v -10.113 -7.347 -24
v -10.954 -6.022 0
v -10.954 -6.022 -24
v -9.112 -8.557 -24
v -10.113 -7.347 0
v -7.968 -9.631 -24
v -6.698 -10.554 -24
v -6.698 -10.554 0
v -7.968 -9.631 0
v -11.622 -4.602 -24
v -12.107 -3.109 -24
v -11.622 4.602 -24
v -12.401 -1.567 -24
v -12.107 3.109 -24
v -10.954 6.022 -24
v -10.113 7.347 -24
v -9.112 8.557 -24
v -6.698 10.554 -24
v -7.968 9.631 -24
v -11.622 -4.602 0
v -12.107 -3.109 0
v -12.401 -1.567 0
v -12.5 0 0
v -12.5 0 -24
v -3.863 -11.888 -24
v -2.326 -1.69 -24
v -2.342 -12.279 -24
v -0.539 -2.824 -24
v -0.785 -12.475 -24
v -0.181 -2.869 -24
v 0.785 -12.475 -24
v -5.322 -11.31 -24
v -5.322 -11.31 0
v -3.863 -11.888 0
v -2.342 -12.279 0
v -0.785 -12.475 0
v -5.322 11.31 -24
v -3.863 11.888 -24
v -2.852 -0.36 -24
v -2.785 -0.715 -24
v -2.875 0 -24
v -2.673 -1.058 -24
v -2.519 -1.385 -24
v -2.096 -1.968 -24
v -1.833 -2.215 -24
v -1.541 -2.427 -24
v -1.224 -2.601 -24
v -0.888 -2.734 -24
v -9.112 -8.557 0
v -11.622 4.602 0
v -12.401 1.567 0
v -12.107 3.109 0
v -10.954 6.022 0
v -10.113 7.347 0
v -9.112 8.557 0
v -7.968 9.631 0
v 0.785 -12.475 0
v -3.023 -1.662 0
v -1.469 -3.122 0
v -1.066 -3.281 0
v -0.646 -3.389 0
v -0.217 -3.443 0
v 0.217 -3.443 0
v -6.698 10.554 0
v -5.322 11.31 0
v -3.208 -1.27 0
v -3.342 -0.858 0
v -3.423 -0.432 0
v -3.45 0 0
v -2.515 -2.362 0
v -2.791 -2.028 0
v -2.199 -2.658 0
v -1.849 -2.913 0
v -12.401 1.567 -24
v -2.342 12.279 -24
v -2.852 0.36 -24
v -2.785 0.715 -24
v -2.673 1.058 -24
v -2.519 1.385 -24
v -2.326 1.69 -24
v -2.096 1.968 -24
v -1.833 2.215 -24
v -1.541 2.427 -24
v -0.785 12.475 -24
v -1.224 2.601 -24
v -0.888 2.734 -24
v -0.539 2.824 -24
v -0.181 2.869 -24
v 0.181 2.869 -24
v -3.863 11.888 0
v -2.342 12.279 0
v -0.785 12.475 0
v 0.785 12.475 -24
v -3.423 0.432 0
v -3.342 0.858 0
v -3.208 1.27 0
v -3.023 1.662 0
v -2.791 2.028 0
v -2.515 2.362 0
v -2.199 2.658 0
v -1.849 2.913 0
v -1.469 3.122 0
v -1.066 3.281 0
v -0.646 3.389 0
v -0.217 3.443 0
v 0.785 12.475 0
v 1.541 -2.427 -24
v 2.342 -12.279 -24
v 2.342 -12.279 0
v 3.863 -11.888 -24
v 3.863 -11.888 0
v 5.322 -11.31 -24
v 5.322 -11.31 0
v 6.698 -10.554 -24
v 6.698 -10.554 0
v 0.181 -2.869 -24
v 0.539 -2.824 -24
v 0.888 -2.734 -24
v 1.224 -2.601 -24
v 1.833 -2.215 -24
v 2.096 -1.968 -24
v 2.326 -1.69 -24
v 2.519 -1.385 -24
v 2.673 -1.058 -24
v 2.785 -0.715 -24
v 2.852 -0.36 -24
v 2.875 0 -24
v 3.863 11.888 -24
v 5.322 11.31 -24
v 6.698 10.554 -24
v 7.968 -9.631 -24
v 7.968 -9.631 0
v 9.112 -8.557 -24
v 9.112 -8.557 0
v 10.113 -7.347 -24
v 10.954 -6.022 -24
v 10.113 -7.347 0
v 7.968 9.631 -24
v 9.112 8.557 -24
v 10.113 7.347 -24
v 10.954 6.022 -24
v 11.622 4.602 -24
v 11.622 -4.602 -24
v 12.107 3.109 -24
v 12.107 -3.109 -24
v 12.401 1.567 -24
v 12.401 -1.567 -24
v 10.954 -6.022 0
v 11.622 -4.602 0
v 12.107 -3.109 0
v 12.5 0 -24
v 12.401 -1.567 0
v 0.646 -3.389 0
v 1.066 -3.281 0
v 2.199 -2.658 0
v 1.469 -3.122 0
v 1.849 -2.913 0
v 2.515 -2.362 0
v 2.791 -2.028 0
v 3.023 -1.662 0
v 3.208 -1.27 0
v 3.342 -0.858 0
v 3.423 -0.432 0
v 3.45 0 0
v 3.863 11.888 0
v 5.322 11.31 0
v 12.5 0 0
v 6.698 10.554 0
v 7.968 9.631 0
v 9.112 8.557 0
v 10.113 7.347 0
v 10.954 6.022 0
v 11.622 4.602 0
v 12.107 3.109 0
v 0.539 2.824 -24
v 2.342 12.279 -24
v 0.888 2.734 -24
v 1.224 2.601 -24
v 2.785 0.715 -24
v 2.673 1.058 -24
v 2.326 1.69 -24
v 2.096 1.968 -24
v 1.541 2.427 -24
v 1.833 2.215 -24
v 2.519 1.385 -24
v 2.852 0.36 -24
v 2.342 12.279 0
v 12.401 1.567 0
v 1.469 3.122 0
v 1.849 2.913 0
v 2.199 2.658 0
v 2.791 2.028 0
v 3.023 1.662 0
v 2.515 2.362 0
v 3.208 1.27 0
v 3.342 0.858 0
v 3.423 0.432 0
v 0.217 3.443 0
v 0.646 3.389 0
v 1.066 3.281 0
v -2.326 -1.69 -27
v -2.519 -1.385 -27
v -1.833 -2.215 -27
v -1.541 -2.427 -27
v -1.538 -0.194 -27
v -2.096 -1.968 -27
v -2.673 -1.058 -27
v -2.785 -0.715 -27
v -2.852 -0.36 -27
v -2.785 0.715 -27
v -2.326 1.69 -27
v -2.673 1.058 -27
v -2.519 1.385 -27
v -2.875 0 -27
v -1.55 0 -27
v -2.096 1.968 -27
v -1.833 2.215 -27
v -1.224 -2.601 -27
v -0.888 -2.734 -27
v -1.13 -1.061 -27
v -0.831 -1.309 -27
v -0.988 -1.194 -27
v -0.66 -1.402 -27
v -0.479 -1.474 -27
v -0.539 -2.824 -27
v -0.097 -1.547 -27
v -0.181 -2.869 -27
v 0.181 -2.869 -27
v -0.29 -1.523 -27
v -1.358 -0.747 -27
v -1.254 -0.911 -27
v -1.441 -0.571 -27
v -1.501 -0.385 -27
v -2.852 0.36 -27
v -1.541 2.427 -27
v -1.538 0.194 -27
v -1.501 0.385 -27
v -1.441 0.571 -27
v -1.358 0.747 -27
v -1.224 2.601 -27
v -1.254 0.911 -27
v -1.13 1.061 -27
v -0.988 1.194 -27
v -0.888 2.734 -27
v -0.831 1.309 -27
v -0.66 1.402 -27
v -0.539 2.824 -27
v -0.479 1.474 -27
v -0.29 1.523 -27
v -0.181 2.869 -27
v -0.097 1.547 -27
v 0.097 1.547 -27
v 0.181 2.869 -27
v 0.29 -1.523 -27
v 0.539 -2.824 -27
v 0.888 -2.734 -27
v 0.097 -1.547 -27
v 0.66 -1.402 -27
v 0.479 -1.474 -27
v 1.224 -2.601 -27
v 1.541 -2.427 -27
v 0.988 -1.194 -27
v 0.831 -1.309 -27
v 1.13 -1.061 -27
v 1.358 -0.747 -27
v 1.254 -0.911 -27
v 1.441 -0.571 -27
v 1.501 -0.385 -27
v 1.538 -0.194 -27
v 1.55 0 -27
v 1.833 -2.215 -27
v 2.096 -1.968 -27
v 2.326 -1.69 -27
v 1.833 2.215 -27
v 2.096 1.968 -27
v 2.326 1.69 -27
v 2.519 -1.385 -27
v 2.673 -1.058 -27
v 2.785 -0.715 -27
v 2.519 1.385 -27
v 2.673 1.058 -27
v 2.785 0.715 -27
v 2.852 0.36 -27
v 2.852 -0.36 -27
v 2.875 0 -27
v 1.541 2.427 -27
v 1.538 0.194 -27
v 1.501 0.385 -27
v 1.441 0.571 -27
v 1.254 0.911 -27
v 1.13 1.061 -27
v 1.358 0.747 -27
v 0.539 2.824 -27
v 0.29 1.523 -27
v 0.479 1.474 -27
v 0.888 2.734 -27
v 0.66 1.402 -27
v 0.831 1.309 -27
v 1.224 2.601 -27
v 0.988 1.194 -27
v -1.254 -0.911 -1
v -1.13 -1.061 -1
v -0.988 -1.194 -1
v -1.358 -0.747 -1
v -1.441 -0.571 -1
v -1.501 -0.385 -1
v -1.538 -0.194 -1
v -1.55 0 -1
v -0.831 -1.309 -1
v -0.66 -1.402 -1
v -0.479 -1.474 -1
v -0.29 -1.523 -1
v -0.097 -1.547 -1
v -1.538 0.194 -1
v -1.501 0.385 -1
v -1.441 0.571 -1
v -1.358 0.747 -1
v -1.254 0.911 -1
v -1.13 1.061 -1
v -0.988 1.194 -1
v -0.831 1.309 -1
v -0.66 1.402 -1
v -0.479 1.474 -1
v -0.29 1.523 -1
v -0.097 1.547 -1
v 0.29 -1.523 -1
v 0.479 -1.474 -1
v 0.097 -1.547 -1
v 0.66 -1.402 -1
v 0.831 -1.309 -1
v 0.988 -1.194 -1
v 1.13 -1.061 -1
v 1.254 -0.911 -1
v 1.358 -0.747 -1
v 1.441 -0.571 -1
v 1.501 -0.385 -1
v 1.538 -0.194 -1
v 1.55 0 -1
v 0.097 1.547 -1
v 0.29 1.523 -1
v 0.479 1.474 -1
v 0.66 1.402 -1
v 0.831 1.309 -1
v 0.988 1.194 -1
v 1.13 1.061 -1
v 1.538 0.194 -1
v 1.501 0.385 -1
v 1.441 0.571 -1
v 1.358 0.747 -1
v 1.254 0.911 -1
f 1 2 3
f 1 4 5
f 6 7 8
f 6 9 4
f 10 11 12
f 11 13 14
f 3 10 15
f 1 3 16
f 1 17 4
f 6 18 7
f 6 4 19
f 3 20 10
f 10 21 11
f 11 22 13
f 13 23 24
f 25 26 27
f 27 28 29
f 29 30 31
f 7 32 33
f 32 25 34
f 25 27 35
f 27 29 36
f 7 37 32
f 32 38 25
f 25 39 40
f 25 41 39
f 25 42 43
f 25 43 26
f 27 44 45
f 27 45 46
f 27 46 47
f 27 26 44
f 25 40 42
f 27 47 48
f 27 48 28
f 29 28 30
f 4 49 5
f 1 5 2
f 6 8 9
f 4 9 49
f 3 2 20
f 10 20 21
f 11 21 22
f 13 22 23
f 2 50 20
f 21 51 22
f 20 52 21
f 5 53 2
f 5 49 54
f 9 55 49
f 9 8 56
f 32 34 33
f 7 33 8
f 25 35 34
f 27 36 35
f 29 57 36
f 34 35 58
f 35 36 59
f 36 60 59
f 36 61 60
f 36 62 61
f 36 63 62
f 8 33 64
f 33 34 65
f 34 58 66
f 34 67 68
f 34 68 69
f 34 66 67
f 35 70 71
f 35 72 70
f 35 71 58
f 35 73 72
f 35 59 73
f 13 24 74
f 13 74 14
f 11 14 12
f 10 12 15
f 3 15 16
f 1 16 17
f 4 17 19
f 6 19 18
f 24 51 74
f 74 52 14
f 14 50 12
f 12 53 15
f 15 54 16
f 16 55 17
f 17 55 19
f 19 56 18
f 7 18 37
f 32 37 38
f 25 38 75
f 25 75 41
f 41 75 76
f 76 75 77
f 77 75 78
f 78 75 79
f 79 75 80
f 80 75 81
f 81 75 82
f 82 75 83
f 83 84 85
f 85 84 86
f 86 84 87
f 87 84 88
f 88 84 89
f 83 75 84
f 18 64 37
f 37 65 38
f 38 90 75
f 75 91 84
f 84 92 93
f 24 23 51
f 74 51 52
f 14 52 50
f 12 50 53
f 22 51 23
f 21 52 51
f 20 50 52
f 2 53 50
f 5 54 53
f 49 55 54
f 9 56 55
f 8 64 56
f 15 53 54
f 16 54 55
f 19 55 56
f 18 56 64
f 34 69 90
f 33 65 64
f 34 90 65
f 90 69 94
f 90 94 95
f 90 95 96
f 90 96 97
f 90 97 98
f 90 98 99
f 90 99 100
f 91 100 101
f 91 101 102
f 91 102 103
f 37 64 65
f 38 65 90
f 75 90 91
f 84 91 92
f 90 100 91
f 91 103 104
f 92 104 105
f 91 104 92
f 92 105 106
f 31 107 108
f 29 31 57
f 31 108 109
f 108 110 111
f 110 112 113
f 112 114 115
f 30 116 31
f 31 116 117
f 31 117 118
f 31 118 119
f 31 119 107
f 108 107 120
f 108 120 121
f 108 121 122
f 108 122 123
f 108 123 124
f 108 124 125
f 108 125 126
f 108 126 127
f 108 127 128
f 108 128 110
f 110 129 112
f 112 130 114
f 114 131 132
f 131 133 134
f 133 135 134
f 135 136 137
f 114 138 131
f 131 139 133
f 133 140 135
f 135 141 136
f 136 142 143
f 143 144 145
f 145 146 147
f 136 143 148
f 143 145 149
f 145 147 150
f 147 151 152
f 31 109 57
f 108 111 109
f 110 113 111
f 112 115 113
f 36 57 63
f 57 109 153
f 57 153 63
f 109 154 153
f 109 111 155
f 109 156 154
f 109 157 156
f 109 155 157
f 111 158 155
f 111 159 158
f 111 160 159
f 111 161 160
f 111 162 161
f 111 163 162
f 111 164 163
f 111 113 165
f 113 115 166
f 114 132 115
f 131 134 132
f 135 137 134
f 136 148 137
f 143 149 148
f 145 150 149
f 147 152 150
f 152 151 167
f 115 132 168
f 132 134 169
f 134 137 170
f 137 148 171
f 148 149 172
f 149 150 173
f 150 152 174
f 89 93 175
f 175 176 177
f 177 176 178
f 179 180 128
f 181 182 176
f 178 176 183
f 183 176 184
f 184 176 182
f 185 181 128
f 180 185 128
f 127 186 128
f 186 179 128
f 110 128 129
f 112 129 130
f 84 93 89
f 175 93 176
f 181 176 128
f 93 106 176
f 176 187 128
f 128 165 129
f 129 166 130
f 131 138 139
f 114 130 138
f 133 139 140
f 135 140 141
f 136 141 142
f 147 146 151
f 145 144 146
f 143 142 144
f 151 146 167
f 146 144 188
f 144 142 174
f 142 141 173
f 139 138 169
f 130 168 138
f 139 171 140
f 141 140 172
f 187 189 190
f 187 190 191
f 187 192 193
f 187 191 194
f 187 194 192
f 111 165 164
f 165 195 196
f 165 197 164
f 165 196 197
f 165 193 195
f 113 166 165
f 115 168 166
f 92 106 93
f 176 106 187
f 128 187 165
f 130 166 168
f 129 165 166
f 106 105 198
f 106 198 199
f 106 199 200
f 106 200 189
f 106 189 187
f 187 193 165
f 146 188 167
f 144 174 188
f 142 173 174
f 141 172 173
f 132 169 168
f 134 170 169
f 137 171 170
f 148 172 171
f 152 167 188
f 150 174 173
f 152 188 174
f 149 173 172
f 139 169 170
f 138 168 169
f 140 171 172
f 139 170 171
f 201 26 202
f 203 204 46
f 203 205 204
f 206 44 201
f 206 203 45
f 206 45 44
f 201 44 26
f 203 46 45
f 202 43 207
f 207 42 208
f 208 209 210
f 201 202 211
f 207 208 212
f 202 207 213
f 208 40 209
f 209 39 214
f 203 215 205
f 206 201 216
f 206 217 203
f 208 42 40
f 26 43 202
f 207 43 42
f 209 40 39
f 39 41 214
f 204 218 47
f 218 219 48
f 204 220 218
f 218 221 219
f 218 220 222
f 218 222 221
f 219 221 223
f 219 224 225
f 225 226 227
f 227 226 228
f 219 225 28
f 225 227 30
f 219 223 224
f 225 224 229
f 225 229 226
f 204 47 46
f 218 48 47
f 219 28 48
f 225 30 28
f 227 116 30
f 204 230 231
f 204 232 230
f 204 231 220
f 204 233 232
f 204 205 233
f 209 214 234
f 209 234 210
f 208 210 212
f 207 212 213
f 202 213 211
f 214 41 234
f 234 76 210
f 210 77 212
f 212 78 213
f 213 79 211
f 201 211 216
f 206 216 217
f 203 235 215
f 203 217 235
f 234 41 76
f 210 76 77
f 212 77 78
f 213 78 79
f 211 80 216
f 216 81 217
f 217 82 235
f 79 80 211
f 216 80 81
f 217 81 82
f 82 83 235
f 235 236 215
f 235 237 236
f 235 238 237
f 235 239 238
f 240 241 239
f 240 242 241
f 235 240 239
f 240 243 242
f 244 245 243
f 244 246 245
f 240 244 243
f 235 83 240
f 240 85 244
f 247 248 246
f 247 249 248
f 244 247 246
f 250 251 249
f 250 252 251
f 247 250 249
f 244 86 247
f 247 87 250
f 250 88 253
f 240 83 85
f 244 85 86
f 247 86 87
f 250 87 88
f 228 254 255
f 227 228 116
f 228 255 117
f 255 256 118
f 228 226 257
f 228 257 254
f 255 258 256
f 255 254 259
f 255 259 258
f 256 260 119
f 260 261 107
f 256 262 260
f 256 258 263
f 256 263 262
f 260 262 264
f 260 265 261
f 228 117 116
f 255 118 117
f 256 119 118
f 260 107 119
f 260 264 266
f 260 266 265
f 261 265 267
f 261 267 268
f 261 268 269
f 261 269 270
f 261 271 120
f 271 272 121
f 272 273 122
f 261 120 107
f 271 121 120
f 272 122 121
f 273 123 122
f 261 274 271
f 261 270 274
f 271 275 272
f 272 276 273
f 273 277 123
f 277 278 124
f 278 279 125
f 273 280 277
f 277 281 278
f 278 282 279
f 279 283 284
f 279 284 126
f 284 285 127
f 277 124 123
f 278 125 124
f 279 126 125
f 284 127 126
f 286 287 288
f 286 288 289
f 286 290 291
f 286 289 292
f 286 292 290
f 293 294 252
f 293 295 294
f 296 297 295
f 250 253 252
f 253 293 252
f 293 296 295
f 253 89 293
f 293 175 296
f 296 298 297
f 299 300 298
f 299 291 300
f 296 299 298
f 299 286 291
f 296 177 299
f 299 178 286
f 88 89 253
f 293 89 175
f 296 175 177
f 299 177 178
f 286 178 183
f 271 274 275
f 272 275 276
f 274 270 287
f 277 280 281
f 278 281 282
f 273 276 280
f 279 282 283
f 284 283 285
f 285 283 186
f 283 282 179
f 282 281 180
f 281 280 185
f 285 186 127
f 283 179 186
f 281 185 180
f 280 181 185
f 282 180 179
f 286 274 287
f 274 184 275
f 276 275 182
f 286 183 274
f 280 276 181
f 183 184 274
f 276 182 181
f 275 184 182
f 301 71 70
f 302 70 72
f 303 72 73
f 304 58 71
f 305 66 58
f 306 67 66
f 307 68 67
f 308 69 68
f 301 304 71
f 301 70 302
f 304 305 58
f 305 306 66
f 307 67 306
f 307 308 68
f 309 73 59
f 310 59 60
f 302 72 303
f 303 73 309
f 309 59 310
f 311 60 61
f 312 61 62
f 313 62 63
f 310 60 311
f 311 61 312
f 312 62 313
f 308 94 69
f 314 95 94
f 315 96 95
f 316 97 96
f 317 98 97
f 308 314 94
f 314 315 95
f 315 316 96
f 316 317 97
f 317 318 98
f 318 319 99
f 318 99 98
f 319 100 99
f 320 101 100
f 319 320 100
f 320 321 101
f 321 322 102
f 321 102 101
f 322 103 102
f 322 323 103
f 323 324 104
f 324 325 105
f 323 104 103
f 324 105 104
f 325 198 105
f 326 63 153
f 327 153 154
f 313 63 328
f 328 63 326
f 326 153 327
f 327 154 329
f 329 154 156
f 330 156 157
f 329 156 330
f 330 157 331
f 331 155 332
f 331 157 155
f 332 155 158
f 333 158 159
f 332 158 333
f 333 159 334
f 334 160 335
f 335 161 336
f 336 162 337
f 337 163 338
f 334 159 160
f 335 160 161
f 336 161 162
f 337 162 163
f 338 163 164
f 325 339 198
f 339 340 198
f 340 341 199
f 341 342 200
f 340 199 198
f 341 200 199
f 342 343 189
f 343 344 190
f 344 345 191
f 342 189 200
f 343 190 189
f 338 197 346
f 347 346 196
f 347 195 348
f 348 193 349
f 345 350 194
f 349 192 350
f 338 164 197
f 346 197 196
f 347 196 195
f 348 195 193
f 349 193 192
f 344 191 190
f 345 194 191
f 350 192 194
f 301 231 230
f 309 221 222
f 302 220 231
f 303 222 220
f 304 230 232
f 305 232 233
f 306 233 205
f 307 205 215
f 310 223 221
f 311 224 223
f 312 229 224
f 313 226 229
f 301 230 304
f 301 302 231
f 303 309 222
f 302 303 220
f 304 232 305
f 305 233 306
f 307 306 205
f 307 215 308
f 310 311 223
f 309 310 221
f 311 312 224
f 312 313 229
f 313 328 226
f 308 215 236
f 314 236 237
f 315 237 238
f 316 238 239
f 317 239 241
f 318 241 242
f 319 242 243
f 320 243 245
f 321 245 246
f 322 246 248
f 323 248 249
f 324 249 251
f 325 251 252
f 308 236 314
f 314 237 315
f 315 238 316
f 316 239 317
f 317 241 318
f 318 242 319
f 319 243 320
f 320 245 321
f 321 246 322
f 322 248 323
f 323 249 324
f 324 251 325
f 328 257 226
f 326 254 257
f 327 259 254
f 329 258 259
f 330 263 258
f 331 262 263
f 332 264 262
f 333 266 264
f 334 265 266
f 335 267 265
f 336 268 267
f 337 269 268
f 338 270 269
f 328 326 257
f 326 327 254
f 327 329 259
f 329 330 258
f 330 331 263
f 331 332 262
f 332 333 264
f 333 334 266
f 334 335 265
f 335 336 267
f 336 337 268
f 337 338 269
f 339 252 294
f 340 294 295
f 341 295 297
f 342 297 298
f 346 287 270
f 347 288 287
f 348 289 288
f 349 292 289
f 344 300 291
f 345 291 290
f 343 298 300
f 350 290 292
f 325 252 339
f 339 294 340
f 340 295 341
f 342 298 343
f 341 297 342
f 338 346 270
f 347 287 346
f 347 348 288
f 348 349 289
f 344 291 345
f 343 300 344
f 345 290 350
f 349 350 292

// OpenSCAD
$fn = 50;


difference() {
	union() {
		translate(v = [0, 0, -24.0000000000]) {
			cylinder(h = 24, r = 12.5000000000);
		}
		#translate(v = [0, 0, -27.0000000000]) {
			cylinder(h = 27, r = 2.8750000000);
		}
	}
	union() {
		translate(v = [0, 0, 0]) {
			rotate(a = [0, 0, 0]) {
				difference() {
					union() {
						translate(v = [0, 0, -27.0000000000]) {
							cylinder(h = 27, r = 1.2500000000);
						}
						translate(v = [0, 0, -1.0000000000]) {
							cylinder(h = 1.0000000000, r1 = 1.5500000000, r2 = 3.4500000000);
						}
						translate(v = [0, 0, -27.0000000000]) {
							cylinder(h = 27, r = 1.5500000000);
						}
						translate(v = [0, 0, -27.0000000000]) {
							cylinder(h = 27, r = 1.2500000000);
						}
					}
					union();
				}
			}
		}
	}
}
